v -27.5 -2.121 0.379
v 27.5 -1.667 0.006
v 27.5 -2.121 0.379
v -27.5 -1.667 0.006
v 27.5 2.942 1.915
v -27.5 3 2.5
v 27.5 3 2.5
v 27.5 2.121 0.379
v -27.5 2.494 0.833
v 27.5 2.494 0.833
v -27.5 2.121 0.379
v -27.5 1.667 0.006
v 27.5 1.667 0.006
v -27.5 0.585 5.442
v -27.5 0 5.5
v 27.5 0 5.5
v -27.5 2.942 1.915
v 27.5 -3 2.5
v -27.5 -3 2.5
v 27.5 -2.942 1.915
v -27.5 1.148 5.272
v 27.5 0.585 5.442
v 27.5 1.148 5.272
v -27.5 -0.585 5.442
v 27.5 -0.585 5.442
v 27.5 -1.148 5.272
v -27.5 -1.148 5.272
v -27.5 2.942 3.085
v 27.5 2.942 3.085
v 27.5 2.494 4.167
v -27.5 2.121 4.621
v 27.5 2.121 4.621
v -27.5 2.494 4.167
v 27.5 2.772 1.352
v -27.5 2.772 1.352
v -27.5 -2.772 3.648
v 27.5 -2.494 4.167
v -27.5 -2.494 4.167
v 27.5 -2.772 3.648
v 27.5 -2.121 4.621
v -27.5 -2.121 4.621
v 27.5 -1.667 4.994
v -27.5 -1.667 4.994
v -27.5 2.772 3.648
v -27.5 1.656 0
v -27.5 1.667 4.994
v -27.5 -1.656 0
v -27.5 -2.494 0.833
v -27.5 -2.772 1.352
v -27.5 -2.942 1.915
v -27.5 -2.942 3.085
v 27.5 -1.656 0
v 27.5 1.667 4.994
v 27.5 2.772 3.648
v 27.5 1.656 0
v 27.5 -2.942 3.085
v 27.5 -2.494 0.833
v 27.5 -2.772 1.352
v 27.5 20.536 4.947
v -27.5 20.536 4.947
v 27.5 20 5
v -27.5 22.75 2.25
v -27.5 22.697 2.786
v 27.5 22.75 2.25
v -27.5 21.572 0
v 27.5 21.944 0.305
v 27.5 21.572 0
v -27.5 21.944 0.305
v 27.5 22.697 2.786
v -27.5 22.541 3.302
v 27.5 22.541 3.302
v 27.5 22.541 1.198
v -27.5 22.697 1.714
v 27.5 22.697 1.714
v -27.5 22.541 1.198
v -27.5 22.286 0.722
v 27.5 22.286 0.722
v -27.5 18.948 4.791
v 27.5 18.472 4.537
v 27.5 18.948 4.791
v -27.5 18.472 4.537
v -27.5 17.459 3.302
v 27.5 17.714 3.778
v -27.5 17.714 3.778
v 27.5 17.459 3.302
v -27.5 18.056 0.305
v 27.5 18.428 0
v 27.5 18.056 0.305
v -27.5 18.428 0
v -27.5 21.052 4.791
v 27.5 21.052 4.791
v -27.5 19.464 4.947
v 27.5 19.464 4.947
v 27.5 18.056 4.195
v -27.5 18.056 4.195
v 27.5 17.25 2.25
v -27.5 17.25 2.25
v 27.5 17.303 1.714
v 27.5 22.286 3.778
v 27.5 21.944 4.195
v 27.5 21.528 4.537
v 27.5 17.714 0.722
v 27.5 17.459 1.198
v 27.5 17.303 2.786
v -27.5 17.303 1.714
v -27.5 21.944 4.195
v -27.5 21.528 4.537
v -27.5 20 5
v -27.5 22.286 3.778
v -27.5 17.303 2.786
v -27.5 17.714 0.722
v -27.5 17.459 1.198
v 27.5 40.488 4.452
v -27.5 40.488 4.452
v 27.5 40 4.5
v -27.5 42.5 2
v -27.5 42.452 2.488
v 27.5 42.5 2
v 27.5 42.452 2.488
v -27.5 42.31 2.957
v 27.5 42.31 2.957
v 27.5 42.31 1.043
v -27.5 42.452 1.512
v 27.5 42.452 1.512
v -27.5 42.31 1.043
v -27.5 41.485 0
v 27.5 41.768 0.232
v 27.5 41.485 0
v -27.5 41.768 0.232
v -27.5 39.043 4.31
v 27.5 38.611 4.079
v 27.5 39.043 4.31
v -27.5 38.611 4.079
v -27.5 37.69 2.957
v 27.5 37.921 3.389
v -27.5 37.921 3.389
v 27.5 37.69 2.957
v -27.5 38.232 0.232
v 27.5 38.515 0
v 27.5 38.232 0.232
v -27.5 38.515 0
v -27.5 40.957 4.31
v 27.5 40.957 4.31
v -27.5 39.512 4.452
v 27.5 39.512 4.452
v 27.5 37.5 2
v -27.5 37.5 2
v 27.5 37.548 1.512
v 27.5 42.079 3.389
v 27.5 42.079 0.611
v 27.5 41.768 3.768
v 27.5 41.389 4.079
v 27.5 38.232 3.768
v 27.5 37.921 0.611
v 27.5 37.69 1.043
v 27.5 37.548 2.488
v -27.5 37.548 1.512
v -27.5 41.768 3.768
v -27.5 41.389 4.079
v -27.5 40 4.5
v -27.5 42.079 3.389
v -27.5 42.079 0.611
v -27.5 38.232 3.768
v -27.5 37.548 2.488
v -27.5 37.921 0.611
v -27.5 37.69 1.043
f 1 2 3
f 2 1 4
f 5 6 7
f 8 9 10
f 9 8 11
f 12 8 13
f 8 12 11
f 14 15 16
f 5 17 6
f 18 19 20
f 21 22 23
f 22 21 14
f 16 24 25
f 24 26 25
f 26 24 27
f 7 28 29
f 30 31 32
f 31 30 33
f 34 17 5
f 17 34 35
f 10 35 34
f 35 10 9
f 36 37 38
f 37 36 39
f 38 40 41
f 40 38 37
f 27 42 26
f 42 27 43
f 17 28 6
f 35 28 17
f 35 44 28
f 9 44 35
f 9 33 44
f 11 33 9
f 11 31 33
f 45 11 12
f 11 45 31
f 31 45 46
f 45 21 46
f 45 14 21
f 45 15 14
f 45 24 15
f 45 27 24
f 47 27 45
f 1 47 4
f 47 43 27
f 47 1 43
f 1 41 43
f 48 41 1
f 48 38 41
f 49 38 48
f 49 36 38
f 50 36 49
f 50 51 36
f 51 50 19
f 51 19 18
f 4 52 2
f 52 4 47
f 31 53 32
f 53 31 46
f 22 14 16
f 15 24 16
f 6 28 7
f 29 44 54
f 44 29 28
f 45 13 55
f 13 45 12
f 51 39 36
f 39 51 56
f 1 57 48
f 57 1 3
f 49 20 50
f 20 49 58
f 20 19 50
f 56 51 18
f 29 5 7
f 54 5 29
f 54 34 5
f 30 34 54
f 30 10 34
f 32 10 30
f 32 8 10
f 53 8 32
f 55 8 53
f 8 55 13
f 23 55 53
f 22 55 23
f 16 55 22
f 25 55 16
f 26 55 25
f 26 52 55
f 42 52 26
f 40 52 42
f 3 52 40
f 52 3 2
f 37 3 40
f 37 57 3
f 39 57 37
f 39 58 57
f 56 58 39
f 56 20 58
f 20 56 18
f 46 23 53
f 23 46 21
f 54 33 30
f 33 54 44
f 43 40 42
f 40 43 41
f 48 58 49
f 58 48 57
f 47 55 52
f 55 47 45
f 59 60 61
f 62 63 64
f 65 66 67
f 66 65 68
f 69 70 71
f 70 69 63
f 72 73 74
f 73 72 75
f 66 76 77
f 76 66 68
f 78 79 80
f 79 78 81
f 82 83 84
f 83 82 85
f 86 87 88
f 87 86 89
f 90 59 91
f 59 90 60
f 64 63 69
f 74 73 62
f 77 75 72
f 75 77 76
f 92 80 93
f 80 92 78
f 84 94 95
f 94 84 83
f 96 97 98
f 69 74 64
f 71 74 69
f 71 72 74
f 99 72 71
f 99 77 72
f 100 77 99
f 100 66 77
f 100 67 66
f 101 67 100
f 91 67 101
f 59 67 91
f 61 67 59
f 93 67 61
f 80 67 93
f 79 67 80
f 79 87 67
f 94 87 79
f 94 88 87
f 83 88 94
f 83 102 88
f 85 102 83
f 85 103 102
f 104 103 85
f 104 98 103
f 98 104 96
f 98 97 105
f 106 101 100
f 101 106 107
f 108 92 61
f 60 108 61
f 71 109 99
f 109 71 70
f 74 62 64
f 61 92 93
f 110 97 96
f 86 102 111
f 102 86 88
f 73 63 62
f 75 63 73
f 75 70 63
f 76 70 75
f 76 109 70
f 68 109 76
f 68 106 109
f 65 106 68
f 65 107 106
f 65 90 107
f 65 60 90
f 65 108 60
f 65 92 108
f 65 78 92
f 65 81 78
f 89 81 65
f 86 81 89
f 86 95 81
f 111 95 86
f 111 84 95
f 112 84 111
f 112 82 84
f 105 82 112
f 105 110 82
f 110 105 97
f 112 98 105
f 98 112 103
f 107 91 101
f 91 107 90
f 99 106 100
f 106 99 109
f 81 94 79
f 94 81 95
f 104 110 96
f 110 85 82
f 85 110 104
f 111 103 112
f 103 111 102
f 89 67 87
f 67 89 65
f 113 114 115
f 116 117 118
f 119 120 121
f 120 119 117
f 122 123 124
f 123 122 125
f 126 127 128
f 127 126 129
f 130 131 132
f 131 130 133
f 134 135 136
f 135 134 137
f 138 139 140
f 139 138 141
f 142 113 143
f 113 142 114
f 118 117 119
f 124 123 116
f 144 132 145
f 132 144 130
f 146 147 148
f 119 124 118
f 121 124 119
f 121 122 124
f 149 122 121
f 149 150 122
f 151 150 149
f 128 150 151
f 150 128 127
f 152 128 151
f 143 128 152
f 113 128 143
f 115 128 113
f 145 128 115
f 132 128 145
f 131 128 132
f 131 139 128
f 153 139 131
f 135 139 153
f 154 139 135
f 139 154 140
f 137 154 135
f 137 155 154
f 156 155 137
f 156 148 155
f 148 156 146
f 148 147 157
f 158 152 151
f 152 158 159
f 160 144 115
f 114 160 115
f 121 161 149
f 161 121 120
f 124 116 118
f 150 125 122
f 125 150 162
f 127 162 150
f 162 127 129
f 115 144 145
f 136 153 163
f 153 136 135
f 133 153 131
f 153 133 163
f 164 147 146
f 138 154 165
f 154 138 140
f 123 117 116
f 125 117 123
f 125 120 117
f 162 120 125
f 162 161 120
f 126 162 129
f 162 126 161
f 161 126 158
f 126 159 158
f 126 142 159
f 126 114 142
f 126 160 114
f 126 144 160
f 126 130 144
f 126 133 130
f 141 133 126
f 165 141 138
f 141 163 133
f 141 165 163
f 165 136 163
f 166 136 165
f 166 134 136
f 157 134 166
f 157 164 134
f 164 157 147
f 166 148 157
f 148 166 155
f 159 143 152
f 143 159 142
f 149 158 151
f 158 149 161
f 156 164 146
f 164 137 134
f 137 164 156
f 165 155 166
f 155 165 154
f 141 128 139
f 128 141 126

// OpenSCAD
difference() {
    translate([0,0,6/2-0.5])
    rotate([0,90,0])
    cylinder(d=6, h=55, $fn=32, center=true);

    translate([0,0,-5/2])
    cube([100,100,5], center=true);
}

translate([0,20,0])
difference() {
    translate([0,0,5.5/2-0.5])
    rotate([0,90,0])
    cylinder(d=5.5, h=55, $fn=32, center=true);

    translate([0,0,-5/2])
    cube([100,100,5], center=true);
}

translate([0,40,0])
difference() {
    translate([0,0,5/2-0.5])
    rotate([0,90,0])
    cylinder(d=5, h=55, $fn=32, center=true);

    translate([0,0,-5/2])
    cube([100,100,5], center=true);
}
